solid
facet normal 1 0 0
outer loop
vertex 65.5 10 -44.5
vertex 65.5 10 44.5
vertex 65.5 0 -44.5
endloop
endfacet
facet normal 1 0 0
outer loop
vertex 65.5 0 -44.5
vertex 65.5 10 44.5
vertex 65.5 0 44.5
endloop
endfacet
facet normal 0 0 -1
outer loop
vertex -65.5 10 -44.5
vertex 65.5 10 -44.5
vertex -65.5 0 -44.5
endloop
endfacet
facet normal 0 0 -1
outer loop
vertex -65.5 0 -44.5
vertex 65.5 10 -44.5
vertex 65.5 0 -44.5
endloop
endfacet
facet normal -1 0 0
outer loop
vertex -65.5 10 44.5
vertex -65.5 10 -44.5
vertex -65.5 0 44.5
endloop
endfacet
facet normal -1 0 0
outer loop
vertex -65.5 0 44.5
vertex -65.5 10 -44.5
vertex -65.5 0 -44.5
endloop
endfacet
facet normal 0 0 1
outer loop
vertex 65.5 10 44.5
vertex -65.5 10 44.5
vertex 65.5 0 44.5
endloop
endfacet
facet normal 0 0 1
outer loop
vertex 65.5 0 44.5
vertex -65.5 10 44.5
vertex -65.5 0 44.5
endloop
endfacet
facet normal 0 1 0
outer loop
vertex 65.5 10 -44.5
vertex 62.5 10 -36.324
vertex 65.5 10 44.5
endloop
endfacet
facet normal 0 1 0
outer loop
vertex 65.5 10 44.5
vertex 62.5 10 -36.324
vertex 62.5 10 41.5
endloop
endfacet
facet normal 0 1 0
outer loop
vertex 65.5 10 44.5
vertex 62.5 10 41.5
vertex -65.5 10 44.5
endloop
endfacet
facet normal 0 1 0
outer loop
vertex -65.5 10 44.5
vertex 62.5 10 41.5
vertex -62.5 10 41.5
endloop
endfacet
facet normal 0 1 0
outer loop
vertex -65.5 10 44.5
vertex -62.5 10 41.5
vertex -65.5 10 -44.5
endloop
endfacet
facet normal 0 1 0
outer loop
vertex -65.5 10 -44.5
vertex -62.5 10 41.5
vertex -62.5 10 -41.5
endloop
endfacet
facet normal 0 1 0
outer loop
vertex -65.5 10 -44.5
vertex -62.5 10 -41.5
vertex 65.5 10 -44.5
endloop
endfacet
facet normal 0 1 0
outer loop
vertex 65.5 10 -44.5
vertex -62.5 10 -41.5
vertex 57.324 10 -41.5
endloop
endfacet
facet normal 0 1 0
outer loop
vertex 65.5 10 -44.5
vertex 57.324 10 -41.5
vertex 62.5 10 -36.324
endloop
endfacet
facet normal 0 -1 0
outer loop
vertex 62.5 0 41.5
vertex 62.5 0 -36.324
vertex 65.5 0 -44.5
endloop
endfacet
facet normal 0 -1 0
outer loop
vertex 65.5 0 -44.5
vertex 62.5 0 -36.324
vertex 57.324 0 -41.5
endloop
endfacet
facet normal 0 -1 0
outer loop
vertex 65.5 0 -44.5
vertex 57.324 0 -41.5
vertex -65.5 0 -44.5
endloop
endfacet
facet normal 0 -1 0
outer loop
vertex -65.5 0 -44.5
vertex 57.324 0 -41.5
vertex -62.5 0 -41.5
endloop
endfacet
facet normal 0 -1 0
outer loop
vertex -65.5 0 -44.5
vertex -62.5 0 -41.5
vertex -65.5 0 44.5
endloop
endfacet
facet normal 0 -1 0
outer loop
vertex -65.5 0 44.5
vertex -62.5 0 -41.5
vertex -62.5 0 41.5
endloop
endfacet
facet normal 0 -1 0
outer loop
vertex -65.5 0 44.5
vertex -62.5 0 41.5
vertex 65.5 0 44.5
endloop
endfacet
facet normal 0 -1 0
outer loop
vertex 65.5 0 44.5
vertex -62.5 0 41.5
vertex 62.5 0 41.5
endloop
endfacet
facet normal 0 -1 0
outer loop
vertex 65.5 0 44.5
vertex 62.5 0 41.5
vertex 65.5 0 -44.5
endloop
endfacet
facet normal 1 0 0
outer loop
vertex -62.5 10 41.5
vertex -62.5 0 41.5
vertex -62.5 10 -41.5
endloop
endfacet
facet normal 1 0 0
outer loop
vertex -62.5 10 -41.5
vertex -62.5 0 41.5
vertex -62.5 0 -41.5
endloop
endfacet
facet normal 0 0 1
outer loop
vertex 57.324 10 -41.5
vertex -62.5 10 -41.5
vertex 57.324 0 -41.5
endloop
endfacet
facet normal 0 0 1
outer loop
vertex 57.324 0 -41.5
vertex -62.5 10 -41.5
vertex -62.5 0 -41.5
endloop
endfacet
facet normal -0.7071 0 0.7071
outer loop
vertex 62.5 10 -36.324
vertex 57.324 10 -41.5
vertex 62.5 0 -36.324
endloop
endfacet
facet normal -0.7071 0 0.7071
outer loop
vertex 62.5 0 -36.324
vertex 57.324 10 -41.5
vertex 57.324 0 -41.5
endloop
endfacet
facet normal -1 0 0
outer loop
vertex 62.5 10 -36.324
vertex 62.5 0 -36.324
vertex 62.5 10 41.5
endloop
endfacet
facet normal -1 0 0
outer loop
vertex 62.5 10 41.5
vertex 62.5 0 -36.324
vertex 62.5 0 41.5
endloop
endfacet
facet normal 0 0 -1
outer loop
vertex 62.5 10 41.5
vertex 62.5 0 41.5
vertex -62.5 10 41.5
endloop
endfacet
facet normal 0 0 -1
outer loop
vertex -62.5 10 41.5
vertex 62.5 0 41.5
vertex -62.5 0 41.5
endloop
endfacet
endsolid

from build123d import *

# Parameters (mm, degrees)
SKETCH1_W           = 131
SKETCH1_H           = 89
BOSS_EXTRUDE1_DEPTH = 10
CUT_EXTRUDE1_DEPTH  = 100


with BuildPart() as part:
    # Sketch1 → Boss-Extrude1 (new body)
    with BuildSketch(Plane(origin=(0, 0, 0), x_dir=(1, 0, 0), z_dir=(0, 1, 0))):
        Rectangle(SKETCH1_W, SKETCH1_H)
    extrude(amount=BOSS_EXTRUDE1_DEPTH)

    # Sketch2 → Cut-Extrude1 (cut)
    # profile 1 of 2: a face of its own
    with BuildSketch(Plane(origin=(0, 10, 0), x_dir=(1, 0, 0), z_dir=(0, 1, 0))):
        Polygon((-62.5, 41.5), (-62.5, -41.5), (62.5, -41.5), (62.5, 36.324264069), (57.324264069, 41.5), align=None)
        Polygon((62.2, -41.2), (62.2, 36.2), (57.2, 41.2), (-62.2, 41.2), (-62.2, -41.2), align=None, mode=Mode.SUBTRACT)
    # profile 2 of 2: a face of its own
    with BuildSketch(Plane(origin=(0, 10, 0), x_dir=(1, 0, 0), z_dir=(0, 1, 0))):
        Polygon((-62.2, -41.2), (62.2, -41.2), (62.2, 36.2), (57.2, 41.2), (-62.2, 41.2), align=None)
    extrude(amount=-CUT_EXTRUDE1_DEPTH, mode=Mode.SUBTRACT)


solid = part.part
